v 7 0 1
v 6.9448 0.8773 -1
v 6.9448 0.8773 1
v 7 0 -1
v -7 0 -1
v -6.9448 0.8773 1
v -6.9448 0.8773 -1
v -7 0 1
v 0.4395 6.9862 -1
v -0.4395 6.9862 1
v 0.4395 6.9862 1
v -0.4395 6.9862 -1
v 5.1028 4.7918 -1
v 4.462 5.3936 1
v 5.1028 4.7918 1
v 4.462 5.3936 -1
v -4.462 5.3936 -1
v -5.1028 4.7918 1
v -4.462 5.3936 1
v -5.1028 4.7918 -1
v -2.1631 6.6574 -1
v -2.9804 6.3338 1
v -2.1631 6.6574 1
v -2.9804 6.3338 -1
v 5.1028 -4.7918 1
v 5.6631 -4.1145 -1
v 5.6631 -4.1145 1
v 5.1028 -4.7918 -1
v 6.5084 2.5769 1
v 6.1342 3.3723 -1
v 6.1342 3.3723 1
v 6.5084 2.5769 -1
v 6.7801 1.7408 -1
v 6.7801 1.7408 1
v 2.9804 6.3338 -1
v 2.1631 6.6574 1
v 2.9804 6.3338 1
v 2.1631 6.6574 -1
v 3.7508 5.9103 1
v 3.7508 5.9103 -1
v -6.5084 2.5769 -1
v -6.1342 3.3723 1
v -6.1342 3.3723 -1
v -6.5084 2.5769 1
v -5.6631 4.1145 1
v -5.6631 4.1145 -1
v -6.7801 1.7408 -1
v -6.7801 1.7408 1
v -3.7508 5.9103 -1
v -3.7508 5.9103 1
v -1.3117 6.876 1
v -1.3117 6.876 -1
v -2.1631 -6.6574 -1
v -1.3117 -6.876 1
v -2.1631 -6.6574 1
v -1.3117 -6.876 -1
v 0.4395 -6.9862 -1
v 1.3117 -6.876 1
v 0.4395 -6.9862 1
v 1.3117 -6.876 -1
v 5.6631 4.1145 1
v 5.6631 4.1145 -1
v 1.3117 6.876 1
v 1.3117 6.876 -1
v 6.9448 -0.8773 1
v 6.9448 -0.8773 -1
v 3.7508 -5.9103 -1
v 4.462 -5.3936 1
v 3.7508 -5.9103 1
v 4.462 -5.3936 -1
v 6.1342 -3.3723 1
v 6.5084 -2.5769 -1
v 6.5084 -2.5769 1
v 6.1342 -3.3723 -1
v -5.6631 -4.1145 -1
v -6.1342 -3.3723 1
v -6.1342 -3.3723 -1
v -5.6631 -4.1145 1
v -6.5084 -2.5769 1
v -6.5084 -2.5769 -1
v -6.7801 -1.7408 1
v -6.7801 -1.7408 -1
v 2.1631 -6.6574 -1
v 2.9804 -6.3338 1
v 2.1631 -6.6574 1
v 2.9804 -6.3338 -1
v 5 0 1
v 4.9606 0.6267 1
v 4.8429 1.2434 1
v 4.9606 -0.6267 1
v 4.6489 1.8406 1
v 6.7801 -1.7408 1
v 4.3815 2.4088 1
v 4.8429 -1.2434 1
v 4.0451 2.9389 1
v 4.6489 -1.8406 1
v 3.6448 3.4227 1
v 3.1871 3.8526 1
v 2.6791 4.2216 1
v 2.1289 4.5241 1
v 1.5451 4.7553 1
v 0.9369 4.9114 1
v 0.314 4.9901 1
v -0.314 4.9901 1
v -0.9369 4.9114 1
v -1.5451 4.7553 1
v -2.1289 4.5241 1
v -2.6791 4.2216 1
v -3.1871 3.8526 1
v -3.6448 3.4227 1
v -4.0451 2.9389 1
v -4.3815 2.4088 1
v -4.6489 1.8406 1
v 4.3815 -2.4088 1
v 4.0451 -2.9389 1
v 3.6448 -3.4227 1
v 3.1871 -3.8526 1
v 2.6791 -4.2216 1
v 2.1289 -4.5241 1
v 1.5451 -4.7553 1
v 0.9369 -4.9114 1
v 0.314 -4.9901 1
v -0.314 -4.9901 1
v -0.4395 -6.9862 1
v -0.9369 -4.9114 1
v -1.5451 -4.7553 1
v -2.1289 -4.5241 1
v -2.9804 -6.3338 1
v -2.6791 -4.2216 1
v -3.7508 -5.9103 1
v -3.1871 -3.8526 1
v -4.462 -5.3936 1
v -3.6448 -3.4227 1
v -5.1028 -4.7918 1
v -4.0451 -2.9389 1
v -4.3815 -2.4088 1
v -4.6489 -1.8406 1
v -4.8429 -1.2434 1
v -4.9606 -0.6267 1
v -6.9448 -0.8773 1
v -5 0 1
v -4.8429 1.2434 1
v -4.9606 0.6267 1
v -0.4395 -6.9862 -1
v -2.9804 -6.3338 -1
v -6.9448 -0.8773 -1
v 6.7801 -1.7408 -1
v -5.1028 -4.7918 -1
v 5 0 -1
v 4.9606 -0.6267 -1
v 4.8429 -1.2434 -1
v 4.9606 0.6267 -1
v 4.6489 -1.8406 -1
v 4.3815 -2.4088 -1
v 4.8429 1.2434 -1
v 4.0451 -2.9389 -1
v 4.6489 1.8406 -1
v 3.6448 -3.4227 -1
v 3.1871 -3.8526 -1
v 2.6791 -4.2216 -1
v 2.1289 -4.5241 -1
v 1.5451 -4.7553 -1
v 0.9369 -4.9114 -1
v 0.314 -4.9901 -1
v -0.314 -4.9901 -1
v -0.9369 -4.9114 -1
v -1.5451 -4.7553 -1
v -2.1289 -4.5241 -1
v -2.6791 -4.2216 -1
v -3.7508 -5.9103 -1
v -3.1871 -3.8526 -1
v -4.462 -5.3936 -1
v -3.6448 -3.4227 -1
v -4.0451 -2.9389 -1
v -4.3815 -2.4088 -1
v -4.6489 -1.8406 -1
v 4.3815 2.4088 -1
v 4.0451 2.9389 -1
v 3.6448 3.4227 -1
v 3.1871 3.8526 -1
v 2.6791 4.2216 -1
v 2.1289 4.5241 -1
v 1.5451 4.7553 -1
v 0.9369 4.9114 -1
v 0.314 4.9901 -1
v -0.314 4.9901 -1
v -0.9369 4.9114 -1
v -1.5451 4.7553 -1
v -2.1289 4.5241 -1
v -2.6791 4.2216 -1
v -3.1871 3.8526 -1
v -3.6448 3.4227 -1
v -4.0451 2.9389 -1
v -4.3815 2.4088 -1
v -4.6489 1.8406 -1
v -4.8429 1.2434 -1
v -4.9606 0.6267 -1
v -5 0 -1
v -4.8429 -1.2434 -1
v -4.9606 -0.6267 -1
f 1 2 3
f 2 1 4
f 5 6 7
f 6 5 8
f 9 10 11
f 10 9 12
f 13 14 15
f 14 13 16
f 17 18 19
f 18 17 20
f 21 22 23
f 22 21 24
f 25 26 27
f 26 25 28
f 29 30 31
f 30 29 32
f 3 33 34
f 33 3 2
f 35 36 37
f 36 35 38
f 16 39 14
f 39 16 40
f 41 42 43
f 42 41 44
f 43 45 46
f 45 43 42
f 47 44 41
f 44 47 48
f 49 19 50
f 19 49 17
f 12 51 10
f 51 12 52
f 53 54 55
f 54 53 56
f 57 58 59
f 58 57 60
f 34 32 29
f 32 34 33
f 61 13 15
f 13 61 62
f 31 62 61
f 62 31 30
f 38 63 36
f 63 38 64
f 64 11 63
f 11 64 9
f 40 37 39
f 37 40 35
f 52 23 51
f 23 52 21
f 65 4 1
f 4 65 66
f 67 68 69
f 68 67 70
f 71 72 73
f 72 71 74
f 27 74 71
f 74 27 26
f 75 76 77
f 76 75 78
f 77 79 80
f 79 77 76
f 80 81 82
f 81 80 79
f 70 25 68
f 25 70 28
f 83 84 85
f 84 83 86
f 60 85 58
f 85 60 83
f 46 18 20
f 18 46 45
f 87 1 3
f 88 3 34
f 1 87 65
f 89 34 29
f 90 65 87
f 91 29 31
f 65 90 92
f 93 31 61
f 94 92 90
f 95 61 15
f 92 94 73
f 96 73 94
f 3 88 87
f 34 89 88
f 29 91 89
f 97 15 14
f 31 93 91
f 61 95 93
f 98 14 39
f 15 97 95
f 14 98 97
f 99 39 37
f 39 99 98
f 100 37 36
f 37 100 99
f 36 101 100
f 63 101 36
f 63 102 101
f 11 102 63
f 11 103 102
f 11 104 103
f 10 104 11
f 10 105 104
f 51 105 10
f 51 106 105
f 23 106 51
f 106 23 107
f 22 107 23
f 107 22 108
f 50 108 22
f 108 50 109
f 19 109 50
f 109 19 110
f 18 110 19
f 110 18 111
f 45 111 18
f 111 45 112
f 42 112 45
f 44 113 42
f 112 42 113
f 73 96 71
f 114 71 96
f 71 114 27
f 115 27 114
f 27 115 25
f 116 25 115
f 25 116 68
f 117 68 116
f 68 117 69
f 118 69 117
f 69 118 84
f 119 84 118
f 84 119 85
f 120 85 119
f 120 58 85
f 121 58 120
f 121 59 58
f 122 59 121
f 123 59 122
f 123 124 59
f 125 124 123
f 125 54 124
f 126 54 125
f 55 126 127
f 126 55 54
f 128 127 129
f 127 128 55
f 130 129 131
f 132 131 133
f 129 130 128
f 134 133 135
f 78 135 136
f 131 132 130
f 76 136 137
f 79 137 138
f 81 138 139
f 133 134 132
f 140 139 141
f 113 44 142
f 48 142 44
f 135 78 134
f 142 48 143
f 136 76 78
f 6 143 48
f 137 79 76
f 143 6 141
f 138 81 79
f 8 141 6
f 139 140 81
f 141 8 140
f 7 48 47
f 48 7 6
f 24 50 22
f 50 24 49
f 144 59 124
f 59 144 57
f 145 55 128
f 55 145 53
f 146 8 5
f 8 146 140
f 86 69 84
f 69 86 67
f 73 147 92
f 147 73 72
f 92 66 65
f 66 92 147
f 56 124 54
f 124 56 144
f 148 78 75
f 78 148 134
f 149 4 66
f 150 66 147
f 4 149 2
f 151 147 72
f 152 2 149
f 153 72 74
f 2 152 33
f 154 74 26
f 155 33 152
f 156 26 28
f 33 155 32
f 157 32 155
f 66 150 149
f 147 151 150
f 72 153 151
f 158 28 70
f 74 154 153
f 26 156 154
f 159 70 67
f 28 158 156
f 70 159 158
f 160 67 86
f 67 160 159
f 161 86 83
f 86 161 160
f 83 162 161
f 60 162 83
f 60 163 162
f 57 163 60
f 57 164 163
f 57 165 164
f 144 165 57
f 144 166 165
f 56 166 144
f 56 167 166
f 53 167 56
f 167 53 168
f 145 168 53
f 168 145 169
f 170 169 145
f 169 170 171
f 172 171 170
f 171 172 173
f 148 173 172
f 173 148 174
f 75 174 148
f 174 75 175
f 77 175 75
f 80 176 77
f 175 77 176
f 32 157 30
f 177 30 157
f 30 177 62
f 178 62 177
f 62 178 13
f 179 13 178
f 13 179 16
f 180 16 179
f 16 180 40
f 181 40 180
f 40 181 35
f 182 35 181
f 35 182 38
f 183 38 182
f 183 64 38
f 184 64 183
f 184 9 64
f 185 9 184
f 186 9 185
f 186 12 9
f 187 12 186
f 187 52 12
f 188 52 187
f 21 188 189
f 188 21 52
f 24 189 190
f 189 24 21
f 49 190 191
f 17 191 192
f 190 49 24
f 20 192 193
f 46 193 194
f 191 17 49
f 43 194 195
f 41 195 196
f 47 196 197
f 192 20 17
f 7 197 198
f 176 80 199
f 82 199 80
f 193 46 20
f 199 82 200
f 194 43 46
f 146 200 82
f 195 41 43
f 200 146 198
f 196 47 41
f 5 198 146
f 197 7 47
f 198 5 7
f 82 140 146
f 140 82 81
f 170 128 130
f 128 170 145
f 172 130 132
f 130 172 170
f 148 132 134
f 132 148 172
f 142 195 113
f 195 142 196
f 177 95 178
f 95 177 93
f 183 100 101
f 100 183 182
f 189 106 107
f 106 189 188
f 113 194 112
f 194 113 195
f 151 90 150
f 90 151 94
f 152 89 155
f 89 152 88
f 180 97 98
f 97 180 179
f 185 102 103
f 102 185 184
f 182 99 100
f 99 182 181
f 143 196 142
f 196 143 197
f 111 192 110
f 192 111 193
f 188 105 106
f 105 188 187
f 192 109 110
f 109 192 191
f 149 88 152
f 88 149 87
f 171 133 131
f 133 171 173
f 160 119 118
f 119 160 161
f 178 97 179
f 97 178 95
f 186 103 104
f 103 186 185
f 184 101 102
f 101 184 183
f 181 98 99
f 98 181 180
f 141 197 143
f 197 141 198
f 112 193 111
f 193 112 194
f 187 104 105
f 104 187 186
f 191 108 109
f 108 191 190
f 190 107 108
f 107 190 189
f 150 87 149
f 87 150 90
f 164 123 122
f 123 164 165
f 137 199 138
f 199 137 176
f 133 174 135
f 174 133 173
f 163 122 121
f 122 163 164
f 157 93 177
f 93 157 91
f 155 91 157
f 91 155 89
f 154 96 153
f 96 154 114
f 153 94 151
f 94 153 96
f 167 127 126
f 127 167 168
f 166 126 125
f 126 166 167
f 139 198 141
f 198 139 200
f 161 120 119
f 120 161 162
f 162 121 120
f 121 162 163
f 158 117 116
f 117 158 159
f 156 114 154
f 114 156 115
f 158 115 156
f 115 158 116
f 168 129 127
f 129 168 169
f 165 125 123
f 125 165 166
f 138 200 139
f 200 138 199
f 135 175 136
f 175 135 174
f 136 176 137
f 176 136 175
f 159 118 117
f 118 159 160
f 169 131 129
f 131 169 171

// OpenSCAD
$fn = 50;


difference() {
	union() {
		translate(v = [0, 0, -1.0000000000]) {
			cylinder(h = 2, r = 7.0000000000);
		}
	}
	union() {
		translate(v = [0, 0, -100.0000000000]) {
			cylinder(h = 200, r = 5.0000000000);
		}
	}
}
